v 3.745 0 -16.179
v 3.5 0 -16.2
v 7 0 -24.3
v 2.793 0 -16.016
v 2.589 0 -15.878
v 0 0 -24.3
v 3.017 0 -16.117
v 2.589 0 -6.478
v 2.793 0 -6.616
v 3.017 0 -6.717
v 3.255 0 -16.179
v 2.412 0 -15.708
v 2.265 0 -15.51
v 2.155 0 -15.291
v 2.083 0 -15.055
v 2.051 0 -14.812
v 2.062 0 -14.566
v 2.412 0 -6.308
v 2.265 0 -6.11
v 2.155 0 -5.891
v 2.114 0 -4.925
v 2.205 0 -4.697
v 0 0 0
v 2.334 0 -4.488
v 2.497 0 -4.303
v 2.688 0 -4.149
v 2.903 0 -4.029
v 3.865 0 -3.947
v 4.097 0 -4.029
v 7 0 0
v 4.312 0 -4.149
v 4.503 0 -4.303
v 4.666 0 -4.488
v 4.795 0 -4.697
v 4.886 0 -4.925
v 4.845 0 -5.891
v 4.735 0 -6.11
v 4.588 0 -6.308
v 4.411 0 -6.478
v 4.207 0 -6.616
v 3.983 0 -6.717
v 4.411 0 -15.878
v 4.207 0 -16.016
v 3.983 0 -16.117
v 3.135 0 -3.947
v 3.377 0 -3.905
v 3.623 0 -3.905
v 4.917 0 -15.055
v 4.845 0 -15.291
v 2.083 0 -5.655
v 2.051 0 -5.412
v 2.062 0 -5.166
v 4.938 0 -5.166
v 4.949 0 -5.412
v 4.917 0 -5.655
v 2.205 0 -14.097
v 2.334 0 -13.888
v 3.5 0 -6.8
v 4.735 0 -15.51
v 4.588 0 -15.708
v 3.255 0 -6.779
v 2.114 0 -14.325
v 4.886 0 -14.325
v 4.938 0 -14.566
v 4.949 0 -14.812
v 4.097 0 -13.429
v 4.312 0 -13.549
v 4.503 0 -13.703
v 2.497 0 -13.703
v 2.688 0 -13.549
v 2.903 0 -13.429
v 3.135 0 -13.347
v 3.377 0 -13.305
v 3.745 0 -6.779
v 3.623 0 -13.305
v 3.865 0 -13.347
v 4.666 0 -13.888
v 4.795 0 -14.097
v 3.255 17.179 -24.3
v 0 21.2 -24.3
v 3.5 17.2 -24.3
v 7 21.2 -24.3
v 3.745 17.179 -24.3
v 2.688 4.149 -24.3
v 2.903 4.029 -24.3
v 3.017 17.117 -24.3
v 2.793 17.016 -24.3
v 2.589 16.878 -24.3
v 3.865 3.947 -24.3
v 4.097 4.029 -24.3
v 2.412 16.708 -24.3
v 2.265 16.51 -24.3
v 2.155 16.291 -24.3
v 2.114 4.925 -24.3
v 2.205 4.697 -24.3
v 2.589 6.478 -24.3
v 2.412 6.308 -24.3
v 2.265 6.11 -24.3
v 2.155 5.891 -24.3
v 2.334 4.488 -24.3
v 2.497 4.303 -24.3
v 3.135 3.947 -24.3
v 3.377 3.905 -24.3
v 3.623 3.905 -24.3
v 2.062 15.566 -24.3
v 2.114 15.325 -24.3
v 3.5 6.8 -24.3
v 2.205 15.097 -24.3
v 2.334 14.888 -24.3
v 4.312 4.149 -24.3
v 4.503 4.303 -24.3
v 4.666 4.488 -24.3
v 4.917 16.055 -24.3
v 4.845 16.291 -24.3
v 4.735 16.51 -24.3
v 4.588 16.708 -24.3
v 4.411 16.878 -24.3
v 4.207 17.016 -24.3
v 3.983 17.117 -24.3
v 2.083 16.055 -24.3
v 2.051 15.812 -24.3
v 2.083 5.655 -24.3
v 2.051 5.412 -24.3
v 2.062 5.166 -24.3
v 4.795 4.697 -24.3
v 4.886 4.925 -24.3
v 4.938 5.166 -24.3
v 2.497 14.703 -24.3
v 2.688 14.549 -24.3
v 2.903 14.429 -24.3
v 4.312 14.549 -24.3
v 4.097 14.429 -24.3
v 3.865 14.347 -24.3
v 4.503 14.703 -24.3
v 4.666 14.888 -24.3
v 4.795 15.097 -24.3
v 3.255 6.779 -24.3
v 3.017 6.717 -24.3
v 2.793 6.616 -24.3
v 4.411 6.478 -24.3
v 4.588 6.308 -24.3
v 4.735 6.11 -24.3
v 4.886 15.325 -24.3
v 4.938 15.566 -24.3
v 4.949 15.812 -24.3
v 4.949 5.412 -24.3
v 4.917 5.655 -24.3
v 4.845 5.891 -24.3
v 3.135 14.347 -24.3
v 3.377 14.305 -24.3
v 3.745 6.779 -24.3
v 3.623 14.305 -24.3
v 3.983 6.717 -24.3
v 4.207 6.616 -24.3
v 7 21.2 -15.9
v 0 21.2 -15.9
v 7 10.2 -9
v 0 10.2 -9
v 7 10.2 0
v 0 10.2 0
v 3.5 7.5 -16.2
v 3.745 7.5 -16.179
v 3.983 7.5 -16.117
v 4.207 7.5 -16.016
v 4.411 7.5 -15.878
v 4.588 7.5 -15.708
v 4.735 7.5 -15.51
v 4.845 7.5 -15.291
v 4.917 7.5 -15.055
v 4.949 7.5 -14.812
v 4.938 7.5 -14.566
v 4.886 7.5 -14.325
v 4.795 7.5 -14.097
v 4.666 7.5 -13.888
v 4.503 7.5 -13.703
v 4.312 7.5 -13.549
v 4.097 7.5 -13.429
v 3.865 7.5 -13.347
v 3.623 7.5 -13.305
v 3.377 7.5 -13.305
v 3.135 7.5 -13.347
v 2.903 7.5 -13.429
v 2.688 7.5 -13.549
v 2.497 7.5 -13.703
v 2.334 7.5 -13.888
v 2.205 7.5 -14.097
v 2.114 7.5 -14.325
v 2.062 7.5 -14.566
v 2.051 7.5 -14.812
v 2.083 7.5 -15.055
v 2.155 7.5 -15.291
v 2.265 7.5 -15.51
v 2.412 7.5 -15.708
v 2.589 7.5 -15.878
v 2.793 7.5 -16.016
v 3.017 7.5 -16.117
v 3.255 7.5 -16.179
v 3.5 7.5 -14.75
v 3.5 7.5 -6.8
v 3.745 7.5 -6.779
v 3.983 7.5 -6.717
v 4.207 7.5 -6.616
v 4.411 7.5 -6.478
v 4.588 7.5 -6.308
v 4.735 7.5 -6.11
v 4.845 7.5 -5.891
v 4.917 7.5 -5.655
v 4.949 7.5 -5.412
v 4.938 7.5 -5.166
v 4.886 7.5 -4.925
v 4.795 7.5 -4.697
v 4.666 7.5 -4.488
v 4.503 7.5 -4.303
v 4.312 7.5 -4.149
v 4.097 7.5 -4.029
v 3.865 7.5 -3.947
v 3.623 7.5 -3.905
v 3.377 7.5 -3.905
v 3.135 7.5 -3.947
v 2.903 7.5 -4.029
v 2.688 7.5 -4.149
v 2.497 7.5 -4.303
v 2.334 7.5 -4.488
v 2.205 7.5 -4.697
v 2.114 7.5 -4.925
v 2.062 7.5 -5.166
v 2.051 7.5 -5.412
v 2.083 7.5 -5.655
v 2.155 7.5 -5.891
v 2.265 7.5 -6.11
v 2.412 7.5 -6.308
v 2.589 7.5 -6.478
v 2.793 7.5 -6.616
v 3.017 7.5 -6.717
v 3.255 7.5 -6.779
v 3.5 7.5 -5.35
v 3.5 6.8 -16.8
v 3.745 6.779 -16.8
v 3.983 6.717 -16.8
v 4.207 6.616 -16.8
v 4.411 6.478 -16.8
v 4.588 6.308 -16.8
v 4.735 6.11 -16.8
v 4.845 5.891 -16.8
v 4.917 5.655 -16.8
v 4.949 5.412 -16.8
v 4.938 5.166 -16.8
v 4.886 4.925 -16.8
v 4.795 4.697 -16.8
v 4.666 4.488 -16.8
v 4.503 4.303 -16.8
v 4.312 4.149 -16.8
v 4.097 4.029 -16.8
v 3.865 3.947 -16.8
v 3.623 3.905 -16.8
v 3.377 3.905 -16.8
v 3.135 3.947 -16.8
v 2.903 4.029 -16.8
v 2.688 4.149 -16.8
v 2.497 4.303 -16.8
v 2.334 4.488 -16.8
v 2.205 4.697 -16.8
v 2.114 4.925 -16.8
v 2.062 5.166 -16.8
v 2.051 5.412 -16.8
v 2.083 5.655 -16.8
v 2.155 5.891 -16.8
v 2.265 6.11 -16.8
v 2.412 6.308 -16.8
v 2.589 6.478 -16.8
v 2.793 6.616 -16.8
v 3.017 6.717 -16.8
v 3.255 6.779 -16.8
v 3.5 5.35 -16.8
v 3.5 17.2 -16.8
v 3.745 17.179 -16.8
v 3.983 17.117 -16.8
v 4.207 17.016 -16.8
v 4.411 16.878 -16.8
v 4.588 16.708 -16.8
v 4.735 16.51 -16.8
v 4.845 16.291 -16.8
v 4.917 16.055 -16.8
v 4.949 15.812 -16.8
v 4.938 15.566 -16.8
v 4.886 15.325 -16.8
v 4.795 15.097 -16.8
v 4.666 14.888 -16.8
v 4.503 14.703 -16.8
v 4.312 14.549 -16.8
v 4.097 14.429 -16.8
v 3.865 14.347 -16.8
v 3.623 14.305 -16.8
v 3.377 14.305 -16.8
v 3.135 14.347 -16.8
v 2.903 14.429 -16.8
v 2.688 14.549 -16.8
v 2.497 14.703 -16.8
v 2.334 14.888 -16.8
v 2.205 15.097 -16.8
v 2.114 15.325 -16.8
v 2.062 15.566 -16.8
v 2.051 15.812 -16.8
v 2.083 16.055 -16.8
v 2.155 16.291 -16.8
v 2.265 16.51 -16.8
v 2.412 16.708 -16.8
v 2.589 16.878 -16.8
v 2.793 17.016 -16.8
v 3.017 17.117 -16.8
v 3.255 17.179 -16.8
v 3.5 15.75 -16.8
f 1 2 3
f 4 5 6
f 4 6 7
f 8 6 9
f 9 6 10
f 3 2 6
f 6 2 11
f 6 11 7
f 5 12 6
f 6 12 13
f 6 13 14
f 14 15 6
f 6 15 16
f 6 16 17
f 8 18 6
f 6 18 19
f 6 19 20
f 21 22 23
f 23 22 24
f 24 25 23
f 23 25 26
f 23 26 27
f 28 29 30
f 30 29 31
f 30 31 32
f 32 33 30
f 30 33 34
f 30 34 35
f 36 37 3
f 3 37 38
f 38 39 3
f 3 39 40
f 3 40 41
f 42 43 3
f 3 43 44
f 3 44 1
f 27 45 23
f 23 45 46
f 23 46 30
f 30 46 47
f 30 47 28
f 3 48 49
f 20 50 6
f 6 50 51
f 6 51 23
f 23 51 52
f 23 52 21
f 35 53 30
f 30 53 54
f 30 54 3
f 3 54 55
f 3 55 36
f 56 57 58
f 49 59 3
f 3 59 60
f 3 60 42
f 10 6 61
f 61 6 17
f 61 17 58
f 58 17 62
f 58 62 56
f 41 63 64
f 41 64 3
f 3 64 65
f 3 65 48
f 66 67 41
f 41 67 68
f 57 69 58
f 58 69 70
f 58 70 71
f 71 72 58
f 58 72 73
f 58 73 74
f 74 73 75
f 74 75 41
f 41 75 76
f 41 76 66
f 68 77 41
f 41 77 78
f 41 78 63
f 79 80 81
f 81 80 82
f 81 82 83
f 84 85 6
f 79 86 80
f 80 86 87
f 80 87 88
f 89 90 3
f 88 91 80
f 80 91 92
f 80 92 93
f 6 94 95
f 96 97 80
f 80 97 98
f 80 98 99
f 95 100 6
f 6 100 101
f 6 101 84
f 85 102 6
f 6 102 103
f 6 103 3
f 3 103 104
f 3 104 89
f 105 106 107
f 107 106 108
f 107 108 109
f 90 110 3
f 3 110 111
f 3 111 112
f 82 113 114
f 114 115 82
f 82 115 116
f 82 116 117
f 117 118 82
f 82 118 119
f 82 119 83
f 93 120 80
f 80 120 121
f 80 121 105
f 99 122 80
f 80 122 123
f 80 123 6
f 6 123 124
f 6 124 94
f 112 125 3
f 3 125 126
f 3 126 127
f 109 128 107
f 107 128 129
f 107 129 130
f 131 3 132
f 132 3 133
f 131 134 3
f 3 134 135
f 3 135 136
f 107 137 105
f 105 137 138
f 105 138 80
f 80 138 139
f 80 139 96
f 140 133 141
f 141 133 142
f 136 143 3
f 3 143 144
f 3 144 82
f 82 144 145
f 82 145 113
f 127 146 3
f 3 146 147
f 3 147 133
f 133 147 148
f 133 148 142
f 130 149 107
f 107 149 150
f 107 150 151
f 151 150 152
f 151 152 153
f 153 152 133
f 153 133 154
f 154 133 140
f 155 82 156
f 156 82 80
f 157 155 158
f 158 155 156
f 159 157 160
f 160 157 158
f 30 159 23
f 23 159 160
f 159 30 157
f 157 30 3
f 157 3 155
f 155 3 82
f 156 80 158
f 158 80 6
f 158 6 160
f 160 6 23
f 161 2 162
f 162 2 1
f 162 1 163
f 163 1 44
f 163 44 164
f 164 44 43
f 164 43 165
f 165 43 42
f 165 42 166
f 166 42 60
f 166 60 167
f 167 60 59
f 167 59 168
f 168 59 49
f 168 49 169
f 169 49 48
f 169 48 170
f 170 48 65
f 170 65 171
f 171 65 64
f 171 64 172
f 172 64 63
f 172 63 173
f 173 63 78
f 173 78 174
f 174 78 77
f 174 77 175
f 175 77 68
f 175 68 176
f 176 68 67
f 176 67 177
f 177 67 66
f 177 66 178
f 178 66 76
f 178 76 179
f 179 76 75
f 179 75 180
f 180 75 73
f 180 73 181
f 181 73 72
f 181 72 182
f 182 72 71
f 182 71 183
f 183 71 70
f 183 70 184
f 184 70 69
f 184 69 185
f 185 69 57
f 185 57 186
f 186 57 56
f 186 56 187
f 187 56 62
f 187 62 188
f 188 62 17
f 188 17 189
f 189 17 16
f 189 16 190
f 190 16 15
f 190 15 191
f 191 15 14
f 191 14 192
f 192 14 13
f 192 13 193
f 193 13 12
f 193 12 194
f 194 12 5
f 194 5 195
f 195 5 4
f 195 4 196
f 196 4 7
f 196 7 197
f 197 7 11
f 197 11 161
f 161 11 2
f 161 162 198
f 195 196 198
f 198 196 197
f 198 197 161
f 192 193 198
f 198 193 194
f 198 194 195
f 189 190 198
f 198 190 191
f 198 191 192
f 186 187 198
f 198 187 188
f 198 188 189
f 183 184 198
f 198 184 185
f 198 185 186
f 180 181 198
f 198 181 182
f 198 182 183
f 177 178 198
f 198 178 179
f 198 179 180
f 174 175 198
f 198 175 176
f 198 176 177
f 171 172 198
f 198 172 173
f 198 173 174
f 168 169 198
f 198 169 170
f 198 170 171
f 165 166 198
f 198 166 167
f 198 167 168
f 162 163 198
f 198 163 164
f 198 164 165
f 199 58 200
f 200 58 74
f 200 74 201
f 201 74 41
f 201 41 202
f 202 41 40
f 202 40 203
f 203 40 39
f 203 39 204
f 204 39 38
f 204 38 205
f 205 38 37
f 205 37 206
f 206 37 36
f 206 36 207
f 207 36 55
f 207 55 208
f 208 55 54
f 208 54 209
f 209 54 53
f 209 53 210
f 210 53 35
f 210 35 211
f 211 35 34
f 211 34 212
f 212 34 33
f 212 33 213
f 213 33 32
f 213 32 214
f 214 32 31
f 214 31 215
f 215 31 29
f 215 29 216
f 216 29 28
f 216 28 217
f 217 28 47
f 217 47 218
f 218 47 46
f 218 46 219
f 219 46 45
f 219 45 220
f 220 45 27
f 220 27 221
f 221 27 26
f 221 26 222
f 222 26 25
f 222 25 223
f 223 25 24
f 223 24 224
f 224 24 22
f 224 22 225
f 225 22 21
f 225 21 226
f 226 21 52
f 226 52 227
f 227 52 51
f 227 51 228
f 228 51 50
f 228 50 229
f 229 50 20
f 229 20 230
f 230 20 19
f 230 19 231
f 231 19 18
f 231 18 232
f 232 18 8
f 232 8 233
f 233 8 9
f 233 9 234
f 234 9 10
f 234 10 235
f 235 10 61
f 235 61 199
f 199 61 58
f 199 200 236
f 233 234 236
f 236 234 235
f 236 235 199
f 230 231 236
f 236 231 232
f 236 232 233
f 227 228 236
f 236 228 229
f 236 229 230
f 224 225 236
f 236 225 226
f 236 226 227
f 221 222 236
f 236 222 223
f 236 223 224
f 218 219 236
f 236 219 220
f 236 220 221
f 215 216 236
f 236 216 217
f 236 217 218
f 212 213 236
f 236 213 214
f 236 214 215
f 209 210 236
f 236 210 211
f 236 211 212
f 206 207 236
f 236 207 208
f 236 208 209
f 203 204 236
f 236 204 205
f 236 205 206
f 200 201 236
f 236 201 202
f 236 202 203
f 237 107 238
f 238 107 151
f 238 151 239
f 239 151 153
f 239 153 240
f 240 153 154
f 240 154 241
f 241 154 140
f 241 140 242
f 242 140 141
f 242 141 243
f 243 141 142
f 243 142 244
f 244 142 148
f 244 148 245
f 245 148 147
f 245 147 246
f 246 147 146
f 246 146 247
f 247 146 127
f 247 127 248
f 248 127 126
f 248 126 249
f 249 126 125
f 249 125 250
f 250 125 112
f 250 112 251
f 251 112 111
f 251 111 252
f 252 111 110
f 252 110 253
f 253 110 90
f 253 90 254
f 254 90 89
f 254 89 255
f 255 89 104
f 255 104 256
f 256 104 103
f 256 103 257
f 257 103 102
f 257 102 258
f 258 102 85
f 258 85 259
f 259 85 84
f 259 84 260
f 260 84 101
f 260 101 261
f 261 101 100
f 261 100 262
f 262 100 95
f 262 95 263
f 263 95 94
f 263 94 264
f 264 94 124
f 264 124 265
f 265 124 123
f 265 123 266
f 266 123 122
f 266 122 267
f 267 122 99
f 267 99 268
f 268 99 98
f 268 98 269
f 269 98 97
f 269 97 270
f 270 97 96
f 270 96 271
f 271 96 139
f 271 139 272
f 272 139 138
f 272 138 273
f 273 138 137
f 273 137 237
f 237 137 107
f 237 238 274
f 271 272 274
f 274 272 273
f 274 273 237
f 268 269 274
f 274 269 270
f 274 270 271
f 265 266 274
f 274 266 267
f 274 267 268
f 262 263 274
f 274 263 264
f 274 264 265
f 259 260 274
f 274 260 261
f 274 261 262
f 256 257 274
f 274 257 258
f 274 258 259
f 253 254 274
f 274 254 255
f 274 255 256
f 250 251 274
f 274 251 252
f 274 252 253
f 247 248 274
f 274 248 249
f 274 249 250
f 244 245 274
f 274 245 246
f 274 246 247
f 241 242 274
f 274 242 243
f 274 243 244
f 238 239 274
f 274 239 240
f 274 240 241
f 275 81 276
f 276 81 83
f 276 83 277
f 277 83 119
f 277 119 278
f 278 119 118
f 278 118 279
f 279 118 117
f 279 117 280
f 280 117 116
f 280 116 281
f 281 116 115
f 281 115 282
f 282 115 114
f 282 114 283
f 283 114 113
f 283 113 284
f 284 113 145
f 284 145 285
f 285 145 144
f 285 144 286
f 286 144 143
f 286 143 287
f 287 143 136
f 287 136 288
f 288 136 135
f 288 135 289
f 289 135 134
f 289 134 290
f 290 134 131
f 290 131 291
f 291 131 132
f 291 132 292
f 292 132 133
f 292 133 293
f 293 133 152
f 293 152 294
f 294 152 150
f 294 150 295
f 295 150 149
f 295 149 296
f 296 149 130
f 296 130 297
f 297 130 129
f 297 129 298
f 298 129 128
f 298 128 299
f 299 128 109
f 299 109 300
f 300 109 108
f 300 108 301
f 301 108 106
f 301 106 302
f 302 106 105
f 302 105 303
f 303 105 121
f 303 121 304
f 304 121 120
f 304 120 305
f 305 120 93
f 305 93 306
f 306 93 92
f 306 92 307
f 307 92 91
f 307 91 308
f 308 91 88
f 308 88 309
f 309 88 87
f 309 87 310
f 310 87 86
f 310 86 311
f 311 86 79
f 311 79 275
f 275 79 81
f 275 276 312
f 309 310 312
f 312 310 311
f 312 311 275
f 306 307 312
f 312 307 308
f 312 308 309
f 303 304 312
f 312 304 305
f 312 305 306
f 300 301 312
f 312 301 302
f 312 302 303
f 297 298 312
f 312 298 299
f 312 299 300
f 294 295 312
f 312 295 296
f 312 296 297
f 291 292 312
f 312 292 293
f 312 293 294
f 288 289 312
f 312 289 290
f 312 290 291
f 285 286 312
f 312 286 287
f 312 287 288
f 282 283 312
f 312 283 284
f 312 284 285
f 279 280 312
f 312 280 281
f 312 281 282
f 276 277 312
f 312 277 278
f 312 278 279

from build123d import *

# Parameters (mm, degrees)
BOSS_EXTRUDE1_DEPTH = 7
SKETCH2_R           = 1.45
CUT_EXTRUDE1_DEPTH  = 7.5
SKETCH3_R           = 1.45
CUT_EXTRUDE2_DEPTH  = 7.5


with BuildPart() as part:
    # Sketch1 → Boss-Extrude1 (new body)
    with BuildSketch(Plane(origin=(0, 0, 0), x_dir=(0, 0, -1), z_dir=(1, 0, 0))):
        Polygon((0, 0), (0, 10.2), (9, 10.2), (15.9, 21.2), (24.3, 21.2), (24.3, 0), align=None)
    extrude(amount=BOSS_EXTRUDE1_DEPTH)

    # Sketch2 → Cut-Extrude1 (cut)
    with BuildSketch(Plane.XZ):
        with Locations((3.5, -5.35)):
            Circle(SKETCH2_R)
        with Locations((3.5, -14.75)):
            Circle(SKETCH2_R)
    extrude(amount=-CUT_EXTRUDE1_DEPTH, mode=Mode.SUBTRACT)

    # Sketch3 → Cut-Extrude2 (cut)
    with BuildSketch(Plane(origin=(0, 0, -24.3), x_dir=(-1, 0, 0), z_dir=(0, 0, -1))):
        with Locations((-3.5, 15.75)):
            Circle(SKETCH3_R)
        with Locations((-3.5, 5.35)):
            Circle(SKETCH3_R)
    extrude(amount=-CUT_EXTRUDE2_DEPTH, mode=Mode.SUBTRACT)


solid = part.part
